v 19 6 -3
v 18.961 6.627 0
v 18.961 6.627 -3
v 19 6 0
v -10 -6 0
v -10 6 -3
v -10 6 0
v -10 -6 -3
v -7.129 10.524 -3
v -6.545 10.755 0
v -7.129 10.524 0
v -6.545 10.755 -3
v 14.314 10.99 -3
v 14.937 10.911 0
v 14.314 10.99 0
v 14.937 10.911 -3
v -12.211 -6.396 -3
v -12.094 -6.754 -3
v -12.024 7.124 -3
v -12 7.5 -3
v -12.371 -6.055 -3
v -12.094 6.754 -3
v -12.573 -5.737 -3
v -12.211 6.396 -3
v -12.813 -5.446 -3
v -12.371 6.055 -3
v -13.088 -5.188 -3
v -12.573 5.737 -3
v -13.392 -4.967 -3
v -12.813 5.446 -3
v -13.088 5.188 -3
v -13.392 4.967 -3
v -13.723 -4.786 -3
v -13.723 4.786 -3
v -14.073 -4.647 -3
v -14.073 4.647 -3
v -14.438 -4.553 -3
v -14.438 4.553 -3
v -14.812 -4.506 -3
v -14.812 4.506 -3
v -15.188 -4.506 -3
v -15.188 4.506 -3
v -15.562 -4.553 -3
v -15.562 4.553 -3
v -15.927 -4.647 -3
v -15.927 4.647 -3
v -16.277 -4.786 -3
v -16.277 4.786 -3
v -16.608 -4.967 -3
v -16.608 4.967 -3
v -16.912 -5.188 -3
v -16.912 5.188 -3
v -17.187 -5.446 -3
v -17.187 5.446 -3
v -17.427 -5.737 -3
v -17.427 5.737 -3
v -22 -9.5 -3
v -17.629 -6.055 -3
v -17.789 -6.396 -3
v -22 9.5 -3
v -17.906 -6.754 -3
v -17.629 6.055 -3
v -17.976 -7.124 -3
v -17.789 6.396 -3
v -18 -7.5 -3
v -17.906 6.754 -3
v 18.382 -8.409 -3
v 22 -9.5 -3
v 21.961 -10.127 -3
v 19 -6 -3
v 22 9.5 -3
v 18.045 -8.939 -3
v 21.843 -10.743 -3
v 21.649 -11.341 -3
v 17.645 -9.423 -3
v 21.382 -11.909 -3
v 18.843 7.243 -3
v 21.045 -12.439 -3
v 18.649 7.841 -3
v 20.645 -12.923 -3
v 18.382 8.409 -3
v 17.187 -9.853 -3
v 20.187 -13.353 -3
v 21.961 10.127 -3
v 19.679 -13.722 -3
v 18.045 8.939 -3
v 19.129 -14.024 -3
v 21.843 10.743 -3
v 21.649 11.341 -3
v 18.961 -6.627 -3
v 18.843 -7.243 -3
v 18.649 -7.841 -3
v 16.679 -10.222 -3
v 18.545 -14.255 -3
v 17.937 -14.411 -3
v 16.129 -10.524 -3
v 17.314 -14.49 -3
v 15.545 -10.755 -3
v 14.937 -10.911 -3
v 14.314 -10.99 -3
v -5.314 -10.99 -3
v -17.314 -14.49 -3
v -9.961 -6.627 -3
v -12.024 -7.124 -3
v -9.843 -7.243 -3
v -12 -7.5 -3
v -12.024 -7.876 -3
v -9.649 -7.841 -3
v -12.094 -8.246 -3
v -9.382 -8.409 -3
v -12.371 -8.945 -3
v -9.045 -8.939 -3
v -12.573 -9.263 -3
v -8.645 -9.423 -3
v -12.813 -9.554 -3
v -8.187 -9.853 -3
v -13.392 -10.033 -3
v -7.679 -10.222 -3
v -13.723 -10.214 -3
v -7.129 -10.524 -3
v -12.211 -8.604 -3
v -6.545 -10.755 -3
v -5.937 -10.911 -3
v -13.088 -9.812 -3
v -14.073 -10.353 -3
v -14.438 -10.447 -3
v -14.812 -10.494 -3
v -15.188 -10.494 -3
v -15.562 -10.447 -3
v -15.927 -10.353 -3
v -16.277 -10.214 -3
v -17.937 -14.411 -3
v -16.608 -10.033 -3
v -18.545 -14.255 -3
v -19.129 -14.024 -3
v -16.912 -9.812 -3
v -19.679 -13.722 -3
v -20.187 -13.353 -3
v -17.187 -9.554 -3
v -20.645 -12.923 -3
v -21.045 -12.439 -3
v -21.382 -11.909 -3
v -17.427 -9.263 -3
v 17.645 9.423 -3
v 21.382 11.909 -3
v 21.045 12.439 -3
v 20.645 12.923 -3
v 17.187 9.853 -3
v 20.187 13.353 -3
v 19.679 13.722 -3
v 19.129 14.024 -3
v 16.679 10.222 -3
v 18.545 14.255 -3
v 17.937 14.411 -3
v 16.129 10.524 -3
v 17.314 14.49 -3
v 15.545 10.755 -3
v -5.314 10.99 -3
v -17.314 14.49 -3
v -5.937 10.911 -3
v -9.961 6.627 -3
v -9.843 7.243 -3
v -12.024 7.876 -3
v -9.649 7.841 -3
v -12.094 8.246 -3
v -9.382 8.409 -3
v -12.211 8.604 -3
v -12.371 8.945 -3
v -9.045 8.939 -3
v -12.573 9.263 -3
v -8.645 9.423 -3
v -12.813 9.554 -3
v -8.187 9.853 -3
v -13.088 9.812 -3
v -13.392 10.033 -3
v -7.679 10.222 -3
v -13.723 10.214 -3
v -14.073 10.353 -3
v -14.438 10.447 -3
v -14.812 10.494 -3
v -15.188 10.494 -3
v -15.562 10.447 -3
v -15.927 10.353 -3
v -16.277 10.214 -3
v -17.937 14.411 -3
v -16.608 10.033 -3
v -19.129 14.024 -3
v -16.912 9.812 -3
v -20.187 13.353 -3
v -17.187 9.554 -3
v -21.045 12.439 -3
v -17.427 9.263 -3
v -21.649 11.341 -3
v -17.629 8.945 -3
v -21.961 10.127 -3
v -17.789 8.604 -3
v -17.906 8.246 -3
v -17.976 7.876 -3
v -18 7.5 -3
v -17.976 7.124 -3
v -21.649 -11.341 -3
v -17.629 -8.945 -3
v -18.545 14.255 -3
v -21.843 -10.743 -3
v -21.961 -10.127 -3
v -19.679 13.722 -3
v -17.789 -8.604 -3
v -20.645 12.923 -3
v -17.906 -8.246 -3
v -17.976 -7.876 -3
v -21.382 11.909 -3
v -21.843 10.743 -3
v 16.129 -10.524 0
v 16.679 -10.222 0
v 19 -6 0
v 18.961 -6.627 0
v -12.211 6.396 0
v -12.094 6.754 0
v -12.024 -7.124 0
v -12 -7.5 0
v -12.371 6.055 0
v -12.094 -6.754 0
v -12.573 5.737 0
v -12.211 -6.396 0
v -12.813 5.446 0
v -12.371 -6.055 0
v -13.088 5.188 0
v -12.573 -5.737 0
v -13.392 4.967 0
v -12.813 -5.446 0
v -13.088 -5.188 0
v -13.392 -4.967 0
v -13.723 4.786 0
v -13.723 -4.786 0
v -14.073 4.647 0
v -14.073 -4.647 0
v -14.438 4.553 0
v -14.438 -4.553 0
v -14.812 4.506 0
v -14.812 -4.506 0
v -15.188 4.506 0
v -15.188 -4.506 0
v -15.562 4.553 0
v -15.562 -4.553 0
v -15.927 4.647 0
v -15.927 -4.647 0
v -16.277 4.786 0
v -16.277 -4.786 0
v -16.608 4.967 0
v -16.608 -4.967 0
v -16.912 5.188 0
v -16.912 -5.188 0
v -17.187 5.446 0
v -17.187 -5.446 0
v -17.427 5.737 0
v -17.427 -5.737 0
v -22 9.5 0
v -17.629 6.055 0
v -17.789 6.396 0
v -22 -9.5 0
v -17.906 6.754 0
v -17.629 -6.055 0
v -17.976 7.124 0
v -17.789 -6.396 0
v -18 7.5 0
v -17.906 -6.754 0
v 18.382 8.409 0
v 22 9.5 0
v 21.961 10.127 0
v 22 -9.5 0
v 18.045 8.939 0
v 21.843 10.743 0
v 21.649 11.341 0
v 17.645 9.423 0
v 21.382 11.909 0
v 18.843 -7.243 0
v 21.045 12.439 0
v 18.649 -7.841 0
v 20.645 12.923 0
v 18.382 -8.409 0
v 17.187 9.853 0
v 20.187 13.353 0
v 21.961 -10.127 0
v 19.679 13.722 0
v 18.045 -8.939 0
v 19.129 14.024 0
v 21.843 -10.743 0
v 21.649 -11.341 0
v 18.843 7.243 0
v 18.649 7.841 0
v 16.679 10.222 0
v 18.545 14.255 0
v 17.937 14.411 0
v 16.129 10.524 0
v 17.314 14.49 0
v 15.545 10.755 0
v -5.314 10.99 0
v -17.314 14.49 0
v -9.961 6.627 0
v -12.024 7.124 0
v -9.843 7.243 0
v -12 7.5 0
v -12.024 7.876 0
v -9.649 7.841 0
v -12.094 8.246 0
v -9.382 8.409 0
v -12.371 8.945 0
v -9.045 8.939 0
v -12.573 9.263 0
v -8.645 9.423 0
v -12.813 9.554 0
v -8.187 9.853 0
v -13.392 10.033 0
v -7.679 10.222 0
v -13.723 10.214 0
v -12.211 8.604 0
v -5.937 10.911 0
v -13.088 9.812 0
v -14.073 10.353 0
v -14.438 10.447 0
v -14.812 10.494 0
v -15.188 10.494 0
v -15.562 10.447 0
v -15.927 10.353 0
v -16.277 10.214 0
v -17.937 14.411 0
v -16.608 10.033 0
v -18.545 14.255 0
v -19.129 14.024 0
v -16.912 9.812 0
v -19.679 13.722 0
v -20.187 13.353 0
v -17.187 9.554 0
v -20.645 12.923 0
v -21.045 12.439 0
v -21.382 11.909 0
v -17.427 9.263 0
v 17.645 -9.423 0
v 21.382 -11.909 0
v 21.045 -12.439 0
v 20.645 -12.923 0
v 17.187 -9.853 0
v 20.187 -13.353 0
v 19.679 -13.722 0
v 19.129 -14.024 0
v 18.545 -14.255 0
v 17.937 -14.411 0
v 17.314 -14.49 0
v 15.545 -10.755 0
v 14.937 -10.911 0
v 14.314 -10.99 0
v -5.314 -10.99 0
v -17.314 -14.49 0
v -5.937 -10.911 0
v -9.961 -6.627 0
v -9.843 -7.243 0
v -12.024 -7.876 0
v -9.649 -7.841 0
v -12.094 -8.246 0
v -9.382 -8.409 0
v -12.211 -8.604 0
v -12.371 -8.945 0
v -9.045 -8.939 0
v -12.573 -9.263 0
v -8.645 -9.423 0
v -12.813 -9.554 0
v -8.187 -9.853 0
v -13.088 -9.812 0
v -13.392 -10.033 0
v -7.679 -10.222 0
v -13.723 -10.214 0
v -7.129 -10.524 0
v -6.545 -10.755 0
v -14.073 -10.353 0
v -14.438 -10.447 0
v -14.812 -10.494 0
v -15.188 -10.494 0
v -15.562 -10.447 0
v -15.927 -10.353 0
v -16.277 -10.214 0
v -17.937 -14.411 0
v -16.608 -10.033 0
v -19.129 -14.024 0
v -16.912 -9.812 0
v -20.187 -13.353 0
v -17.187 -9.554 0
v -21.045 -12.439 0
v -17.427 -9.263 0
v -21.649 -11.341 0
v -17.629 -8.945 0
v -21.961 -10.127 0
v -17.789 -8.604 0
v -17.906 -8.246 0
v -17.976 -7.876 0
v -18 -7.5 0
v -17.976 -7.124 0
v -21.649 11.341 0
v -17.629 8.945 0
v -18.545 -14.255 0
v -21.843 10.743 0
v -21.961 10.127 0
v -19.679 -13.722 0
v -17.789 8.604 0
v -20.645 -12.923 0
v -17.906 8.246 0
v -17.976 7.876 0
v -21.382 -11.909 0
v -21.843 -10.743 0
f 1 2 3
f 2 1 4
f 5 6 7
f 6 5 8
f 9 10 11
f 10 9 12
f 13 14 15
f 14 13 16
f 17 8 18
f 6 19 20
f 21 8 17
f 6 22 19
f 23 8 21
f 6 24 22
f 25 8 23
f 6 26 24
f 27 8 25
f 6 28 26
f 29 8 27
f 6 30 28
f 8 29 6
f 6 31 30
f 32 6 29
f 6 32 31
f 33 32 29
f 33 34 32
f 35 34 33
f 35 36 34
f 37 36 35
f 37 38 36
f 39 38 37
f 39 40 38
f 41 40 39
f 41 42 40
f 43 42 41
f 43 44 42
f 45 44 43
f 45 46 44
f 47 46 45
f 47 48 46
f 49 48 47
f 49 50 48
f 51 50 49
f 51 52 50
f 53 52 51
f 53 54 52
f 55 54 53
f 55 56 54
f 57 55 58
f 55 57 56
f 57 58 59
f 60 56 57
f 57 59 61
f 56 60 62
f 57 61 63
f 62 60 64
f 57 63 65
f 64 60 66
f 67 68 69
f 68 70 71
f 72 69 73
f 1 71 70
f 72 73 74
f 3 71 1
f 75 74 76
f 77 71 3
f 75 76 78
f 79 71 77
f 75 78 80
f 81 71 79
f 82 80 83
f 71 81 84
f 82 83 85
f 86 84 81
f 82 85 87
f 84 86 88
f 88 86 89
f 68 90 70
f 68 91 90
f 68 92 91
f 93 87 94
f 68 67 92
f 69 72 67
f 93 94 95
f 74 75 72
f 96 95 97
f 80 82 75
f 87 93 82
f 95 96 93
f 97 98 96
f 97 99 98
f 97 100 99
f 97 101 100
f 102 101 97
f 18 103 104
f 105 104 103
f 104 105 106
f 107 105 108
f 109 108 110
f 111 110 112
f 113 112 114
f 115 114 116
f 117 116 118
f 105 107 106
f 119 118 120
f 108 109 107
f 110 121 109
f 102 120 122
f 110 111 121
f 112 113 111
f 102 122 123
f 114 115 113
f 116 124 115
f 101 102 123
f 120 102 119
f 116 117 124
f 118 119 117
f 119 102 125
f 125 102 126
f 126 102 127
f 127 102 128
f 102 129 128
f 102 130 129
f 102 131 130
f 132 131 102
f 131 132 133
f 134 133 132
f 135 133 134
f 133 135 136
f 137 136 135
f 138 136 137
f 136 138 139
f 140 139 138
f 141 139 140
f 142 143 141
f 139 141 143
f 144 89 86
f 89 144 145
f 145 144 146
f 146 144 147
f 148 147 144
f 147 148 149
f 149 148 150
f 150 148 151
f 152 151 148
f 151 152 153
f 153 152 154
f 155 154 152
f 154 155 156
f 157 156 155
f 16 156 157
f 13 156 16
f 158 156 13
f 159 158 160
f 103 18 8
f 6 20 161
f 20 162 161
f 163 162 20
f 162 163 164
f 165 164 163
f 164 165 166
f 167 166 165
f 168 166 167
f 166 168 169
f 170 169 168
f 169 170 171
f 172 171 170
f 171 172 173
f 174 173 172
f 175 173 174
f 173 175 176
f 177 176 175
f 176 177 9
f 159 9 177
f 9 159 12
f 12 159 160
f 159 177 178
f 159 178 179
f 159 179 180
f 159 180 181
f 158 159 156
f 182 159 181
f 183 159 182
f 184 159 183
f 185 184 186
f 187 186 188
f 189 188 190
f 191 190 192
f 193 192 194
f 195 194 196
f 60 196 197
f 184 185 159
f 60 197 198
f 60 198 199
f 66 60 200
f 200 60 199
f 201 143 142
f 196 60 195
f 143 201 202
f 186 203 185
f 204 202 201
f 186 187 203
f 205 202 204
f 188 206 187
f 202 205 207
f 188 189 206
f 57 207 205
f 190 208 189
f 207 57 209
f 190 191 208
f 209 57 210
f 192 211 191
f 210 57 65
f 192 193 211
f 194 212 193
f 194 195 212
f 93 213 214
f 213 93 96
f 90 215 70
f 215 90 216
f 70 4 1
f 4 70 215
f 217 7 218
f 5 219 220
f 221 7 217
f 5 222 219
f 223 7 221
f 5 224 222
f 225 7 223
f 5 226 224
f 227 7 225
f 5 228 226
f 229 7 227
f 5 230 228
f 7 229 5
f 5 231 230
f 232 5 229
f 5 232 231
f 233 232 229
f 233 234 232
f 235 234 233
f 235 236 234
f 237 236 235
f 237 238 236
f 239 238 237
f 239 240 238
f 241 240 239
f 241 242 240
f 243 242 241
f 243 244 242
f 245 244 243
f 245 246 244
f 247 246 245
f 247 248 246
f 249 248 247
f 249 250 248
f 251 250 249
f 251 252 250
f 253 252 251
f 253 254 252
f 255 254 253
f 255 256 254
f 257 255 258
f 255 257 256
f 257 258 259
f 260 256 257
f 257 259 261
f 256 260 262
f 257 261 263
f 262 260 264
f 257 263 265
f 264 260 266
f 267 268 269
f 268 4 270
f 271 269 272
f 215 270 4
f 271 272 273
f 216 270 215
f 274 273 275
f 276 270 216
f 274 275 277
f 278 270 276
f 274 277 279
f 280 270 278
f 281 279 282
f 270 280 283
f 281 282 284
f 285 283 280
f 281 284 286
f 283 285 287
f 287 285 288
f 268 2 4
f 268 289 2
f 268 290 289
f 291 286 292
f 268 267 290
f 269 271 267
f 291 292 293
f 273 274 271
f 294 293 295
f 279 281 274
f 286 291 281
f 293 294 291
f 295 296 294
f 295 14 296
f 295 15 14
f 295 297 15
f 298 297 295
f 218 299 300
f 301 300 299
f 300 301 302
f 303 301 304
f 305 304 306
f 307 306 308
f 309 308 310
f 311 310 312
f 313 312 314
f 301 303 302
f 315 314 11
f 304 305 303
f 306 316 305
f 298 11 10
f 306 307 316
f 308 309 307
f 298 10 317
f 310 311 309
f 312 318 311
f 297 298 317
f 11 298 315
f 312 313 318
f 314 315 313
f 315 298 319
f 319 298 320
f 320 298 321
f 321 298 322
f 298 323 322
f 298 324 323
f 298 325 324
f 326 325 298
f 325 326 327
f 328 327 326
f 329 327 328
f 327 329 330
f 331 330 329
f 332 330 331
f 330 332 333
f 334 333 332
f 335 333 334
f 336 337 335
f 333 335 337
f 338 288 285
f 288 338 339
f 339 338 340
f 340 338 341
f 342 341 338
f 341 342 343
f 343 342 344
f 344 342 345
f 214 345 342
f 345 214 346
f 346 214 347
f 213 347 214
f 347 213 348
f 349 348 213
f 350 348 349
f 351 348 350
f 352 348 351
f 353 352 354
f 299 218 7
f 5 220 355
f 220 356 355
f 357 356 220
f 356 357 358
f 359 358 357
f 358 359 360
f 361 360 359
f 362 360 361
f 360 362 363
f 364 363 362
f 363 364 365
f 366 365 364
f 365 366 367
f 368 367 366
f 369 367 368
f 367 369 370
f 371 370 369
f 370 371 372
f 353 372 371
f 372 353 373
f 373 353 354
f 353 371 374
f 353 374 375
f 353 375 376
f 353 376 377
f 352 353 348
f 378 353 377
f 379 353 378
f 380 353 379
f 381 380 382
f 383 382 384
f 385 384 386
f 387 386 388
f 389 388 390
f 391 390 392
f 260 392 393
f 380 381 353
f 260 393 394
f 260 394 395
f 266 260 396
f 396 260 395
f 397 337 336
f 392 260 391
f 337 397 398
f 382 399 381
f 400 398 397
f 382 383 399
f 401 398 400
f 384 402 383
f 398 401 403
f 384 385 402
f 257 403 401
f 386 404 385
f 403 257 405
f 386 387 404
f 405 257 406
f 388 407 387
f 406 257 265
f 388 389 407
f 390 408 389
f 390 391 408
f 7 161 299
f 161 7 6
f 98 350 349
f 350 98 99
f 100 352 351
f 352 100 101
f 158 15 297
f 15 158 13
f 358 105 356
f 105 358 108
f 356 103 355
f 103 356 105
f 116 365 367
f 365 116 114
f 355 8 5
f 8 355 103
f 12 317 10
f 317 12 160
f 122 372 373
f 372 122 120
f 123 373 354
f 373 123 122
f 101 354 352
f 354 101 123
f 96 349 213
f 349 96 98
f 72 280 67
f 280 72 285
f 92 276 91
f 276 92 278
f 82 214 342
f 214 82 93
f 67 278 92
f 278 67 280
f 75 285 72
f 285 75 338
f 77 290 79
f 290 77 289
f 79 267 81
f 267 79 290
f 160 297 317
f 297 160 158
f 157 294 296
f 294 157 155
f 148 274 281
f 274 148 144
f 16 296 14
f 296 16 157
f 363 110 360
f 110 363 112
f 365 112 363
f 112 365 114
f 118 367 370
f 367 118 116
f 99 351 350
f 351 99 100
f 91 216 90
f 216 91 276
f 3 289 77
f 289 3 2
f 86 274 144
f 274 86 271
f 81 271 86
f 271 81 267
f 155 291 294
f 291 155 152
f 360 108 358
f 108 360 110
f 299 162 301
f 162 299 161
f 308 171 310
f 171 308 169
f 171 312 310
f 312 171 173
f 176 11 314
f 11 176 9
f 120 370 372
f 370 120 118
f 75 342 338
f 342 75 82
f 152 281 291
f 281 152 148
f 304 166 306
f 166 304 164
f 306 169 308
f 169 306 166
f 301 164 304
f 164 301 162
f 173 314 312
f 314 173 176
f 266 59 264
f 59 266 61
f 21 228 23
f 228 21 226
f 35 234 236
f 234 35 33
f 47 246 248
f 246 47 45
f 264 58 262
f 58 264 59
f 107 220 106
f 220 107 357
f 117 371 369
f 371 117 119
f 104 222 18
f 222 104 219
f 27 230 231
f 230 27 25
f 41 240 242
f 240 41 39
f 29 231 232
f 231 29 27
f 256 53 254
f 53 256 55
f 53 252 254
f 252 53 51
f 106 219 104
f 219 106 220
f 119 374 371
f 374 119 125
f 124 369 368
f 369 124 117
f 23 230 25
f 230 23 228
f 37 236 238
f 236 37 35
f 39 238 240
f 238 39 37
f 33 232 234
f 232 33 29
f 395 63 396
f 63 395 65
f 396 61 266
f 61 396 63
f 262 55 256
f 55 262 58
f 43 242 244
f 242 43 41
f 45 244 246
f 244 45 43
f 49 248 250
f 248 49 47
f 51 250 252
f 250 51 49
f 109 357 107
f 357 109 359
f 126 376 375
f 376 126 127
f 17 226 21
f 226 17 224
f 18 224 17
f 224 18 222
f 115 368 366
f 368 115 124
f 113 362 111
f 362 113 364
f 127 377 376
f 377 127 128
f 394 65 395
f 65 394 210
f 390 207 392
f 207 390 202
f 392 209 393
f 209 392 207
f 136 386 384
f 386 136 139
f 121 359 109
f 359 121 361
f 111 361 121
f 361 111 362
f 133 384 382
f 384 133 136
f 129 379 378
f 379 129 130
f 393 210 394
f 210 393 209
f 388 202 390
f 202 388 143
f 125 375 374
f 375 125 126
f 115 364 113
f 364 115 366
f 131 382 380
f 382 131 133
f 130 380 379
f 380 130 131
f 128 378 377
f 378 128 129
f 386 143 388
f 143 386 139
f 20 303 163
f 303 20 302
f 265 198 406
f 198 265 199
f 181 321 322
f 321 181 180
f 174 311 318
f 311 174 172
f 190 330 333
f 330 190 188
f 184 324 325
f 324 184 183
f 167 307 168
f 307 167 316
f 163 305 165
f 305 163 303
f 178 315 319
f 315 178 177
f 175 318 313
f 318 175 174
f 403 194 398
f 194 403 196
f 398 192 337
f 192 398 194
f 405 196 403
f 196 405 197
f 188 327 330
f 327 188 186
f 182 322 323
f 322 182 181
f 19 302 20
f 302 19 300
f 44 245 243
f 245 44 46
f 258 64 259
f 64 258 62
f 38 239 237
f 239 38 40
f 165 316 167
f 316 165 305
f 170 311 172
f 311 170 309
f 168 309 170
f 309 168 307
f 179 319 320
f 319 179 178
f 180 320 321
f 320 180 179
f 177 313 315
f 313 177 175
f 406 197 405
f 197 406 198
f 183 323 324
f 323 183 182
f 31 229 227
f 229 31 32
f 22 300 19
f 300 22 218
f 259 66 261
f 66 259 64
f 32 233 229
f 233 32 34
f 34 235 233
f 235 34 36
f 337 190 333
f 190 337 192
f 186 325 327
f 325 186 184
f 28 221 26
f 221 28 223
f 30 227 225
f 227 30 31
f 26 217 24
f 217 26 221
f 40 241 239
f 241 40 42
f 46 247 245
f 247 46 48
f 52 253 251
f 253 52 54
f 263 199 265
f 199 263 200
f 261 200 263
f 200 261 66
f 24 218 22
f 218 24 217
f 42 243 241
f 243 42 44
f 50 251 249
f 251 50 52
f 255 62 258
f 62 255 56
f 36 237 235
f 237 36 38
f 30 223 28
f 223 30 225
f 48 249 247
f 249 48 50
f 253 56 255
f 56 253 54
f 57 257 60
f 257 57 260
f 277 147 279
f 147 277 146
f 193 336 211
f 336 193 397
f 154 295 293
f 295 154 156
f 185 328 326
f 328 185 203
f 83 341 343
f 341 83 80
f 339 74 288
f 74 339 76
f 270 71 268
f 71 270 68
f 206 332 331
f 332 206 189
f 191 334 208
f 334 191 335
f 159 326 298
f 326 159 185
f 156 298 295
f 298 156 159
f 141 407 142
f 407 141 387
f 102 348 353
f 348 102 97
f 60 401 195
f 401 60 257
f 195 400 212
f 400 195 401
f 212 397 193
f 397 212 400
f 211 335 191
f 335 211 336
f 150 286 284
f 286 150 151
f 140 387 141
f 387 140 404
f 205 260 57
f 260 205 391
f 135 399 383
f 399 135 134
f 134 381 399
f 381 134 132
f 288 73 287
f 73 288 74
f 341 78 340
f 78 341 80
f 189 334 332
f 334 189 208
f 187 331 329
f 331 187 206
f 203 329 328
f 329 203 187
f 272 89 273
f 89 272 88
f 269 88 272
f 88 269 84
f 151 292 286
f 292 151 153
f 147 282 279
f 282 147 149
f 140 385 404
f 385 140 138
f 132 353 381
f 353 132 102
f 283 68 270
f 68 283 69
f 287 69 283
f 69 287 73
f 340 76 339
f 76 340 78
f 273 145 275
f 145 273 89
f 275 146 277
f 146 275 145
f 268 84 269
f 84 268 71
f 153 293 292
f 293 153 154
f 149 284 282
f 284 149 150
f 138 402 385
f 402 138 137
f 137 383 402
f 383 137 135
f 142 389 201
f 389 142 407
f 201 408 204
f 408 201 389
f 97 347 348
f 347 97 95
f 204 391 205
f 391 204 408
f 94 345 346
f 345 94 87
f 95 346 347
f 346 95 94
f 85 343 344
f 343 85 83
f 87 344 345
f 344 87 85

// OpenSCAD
$fn = 50;


difference() {
	union() {
		translate(v = [0, 0, -3]) {
			hull() {
				translate(v = [-17.0000000000, 9.5000000000, 0]) {
					cylinder(h = 3, r = 5);
				}
				translate(v = [17.0000000000, 9.5000000000, 0]) {
					cylinder(h = 3, r = 5);
				}
				translate(v = [-17.0000000000, -9.5000000000, 0]) {
					cylinder(h = 3, r = 5);
				}
				translate(v = [17.0000000000, -9.5000000000, 0]) {
					cylinder(h = 3, r = 5);
				}
			}
		}
	}
	union() {
		translate(v = [0, 0, -3]) {
			rotate(a = [0, 0, 180]) {
				difference() {
					union() {
						translate(v = [-4.5000000000, 0, 0]) {
							#hull() {
								translate(v = [-9.5000000000, 6.0000000000, 0]) {
									cylinder(h = 3, r = 5);
								}
								translate(v = [9.5000000000, 6.0000000000, 0]) {
									cylinder(h = 3, r = 5);
								}
								translate(v = [-9.5000000000, -6.0000000000, 0]) {
									cylinder(h = 3, r = 5);
								}
								translate(v = [9.5000000000, -6.0000000000, 0]) {
									cylinder(h = 3, r = 5);
								}
							}
						}
					}
					union();
				}
			}
		}
		translate(v = [-15.0000000000, -7.5000000000, -50.0000000000]) {
			cylinder(h = 100, r = 3.0000000000);
		}
		translate(v = [-15.0000000000, 7.5000000000, -50.0000000000]) {
			cylinder(h = 100, r = 3.0000000000);
		}
		translate(v = [-15.0000000000, 7.5000000000, -50.0000000000]) {
			cylinder(h = 100, r = 3.0000000000);
		}
		translate(v = [0.0000000000, 7.5000000000, -50.0000000000]) {
			cylinder(h = 100, r = 3.0000000000);
		}
		translate(v = [15.0000000000, 7.5000000000, -50.0000000000]) {
			cylinder(h = 100, r = 3.0000000000);
		}
		translate(v = [-15.0000000000, -7.5000000000, -50.0000000000]) {
			cylinder(h = 100, r = 3.0000000000);
		}
		translate(v = [0.0000000000, -7.5000000000, -50.0000000000]) {
			cylinder(h = 100, r = 3.0000000000);
		}
		translate(v = [15.0000000000, -7.5000000000, -50.0000000000]) {
			cylinder(h = 100, r = 3.0000000000);
		}
	}
}
